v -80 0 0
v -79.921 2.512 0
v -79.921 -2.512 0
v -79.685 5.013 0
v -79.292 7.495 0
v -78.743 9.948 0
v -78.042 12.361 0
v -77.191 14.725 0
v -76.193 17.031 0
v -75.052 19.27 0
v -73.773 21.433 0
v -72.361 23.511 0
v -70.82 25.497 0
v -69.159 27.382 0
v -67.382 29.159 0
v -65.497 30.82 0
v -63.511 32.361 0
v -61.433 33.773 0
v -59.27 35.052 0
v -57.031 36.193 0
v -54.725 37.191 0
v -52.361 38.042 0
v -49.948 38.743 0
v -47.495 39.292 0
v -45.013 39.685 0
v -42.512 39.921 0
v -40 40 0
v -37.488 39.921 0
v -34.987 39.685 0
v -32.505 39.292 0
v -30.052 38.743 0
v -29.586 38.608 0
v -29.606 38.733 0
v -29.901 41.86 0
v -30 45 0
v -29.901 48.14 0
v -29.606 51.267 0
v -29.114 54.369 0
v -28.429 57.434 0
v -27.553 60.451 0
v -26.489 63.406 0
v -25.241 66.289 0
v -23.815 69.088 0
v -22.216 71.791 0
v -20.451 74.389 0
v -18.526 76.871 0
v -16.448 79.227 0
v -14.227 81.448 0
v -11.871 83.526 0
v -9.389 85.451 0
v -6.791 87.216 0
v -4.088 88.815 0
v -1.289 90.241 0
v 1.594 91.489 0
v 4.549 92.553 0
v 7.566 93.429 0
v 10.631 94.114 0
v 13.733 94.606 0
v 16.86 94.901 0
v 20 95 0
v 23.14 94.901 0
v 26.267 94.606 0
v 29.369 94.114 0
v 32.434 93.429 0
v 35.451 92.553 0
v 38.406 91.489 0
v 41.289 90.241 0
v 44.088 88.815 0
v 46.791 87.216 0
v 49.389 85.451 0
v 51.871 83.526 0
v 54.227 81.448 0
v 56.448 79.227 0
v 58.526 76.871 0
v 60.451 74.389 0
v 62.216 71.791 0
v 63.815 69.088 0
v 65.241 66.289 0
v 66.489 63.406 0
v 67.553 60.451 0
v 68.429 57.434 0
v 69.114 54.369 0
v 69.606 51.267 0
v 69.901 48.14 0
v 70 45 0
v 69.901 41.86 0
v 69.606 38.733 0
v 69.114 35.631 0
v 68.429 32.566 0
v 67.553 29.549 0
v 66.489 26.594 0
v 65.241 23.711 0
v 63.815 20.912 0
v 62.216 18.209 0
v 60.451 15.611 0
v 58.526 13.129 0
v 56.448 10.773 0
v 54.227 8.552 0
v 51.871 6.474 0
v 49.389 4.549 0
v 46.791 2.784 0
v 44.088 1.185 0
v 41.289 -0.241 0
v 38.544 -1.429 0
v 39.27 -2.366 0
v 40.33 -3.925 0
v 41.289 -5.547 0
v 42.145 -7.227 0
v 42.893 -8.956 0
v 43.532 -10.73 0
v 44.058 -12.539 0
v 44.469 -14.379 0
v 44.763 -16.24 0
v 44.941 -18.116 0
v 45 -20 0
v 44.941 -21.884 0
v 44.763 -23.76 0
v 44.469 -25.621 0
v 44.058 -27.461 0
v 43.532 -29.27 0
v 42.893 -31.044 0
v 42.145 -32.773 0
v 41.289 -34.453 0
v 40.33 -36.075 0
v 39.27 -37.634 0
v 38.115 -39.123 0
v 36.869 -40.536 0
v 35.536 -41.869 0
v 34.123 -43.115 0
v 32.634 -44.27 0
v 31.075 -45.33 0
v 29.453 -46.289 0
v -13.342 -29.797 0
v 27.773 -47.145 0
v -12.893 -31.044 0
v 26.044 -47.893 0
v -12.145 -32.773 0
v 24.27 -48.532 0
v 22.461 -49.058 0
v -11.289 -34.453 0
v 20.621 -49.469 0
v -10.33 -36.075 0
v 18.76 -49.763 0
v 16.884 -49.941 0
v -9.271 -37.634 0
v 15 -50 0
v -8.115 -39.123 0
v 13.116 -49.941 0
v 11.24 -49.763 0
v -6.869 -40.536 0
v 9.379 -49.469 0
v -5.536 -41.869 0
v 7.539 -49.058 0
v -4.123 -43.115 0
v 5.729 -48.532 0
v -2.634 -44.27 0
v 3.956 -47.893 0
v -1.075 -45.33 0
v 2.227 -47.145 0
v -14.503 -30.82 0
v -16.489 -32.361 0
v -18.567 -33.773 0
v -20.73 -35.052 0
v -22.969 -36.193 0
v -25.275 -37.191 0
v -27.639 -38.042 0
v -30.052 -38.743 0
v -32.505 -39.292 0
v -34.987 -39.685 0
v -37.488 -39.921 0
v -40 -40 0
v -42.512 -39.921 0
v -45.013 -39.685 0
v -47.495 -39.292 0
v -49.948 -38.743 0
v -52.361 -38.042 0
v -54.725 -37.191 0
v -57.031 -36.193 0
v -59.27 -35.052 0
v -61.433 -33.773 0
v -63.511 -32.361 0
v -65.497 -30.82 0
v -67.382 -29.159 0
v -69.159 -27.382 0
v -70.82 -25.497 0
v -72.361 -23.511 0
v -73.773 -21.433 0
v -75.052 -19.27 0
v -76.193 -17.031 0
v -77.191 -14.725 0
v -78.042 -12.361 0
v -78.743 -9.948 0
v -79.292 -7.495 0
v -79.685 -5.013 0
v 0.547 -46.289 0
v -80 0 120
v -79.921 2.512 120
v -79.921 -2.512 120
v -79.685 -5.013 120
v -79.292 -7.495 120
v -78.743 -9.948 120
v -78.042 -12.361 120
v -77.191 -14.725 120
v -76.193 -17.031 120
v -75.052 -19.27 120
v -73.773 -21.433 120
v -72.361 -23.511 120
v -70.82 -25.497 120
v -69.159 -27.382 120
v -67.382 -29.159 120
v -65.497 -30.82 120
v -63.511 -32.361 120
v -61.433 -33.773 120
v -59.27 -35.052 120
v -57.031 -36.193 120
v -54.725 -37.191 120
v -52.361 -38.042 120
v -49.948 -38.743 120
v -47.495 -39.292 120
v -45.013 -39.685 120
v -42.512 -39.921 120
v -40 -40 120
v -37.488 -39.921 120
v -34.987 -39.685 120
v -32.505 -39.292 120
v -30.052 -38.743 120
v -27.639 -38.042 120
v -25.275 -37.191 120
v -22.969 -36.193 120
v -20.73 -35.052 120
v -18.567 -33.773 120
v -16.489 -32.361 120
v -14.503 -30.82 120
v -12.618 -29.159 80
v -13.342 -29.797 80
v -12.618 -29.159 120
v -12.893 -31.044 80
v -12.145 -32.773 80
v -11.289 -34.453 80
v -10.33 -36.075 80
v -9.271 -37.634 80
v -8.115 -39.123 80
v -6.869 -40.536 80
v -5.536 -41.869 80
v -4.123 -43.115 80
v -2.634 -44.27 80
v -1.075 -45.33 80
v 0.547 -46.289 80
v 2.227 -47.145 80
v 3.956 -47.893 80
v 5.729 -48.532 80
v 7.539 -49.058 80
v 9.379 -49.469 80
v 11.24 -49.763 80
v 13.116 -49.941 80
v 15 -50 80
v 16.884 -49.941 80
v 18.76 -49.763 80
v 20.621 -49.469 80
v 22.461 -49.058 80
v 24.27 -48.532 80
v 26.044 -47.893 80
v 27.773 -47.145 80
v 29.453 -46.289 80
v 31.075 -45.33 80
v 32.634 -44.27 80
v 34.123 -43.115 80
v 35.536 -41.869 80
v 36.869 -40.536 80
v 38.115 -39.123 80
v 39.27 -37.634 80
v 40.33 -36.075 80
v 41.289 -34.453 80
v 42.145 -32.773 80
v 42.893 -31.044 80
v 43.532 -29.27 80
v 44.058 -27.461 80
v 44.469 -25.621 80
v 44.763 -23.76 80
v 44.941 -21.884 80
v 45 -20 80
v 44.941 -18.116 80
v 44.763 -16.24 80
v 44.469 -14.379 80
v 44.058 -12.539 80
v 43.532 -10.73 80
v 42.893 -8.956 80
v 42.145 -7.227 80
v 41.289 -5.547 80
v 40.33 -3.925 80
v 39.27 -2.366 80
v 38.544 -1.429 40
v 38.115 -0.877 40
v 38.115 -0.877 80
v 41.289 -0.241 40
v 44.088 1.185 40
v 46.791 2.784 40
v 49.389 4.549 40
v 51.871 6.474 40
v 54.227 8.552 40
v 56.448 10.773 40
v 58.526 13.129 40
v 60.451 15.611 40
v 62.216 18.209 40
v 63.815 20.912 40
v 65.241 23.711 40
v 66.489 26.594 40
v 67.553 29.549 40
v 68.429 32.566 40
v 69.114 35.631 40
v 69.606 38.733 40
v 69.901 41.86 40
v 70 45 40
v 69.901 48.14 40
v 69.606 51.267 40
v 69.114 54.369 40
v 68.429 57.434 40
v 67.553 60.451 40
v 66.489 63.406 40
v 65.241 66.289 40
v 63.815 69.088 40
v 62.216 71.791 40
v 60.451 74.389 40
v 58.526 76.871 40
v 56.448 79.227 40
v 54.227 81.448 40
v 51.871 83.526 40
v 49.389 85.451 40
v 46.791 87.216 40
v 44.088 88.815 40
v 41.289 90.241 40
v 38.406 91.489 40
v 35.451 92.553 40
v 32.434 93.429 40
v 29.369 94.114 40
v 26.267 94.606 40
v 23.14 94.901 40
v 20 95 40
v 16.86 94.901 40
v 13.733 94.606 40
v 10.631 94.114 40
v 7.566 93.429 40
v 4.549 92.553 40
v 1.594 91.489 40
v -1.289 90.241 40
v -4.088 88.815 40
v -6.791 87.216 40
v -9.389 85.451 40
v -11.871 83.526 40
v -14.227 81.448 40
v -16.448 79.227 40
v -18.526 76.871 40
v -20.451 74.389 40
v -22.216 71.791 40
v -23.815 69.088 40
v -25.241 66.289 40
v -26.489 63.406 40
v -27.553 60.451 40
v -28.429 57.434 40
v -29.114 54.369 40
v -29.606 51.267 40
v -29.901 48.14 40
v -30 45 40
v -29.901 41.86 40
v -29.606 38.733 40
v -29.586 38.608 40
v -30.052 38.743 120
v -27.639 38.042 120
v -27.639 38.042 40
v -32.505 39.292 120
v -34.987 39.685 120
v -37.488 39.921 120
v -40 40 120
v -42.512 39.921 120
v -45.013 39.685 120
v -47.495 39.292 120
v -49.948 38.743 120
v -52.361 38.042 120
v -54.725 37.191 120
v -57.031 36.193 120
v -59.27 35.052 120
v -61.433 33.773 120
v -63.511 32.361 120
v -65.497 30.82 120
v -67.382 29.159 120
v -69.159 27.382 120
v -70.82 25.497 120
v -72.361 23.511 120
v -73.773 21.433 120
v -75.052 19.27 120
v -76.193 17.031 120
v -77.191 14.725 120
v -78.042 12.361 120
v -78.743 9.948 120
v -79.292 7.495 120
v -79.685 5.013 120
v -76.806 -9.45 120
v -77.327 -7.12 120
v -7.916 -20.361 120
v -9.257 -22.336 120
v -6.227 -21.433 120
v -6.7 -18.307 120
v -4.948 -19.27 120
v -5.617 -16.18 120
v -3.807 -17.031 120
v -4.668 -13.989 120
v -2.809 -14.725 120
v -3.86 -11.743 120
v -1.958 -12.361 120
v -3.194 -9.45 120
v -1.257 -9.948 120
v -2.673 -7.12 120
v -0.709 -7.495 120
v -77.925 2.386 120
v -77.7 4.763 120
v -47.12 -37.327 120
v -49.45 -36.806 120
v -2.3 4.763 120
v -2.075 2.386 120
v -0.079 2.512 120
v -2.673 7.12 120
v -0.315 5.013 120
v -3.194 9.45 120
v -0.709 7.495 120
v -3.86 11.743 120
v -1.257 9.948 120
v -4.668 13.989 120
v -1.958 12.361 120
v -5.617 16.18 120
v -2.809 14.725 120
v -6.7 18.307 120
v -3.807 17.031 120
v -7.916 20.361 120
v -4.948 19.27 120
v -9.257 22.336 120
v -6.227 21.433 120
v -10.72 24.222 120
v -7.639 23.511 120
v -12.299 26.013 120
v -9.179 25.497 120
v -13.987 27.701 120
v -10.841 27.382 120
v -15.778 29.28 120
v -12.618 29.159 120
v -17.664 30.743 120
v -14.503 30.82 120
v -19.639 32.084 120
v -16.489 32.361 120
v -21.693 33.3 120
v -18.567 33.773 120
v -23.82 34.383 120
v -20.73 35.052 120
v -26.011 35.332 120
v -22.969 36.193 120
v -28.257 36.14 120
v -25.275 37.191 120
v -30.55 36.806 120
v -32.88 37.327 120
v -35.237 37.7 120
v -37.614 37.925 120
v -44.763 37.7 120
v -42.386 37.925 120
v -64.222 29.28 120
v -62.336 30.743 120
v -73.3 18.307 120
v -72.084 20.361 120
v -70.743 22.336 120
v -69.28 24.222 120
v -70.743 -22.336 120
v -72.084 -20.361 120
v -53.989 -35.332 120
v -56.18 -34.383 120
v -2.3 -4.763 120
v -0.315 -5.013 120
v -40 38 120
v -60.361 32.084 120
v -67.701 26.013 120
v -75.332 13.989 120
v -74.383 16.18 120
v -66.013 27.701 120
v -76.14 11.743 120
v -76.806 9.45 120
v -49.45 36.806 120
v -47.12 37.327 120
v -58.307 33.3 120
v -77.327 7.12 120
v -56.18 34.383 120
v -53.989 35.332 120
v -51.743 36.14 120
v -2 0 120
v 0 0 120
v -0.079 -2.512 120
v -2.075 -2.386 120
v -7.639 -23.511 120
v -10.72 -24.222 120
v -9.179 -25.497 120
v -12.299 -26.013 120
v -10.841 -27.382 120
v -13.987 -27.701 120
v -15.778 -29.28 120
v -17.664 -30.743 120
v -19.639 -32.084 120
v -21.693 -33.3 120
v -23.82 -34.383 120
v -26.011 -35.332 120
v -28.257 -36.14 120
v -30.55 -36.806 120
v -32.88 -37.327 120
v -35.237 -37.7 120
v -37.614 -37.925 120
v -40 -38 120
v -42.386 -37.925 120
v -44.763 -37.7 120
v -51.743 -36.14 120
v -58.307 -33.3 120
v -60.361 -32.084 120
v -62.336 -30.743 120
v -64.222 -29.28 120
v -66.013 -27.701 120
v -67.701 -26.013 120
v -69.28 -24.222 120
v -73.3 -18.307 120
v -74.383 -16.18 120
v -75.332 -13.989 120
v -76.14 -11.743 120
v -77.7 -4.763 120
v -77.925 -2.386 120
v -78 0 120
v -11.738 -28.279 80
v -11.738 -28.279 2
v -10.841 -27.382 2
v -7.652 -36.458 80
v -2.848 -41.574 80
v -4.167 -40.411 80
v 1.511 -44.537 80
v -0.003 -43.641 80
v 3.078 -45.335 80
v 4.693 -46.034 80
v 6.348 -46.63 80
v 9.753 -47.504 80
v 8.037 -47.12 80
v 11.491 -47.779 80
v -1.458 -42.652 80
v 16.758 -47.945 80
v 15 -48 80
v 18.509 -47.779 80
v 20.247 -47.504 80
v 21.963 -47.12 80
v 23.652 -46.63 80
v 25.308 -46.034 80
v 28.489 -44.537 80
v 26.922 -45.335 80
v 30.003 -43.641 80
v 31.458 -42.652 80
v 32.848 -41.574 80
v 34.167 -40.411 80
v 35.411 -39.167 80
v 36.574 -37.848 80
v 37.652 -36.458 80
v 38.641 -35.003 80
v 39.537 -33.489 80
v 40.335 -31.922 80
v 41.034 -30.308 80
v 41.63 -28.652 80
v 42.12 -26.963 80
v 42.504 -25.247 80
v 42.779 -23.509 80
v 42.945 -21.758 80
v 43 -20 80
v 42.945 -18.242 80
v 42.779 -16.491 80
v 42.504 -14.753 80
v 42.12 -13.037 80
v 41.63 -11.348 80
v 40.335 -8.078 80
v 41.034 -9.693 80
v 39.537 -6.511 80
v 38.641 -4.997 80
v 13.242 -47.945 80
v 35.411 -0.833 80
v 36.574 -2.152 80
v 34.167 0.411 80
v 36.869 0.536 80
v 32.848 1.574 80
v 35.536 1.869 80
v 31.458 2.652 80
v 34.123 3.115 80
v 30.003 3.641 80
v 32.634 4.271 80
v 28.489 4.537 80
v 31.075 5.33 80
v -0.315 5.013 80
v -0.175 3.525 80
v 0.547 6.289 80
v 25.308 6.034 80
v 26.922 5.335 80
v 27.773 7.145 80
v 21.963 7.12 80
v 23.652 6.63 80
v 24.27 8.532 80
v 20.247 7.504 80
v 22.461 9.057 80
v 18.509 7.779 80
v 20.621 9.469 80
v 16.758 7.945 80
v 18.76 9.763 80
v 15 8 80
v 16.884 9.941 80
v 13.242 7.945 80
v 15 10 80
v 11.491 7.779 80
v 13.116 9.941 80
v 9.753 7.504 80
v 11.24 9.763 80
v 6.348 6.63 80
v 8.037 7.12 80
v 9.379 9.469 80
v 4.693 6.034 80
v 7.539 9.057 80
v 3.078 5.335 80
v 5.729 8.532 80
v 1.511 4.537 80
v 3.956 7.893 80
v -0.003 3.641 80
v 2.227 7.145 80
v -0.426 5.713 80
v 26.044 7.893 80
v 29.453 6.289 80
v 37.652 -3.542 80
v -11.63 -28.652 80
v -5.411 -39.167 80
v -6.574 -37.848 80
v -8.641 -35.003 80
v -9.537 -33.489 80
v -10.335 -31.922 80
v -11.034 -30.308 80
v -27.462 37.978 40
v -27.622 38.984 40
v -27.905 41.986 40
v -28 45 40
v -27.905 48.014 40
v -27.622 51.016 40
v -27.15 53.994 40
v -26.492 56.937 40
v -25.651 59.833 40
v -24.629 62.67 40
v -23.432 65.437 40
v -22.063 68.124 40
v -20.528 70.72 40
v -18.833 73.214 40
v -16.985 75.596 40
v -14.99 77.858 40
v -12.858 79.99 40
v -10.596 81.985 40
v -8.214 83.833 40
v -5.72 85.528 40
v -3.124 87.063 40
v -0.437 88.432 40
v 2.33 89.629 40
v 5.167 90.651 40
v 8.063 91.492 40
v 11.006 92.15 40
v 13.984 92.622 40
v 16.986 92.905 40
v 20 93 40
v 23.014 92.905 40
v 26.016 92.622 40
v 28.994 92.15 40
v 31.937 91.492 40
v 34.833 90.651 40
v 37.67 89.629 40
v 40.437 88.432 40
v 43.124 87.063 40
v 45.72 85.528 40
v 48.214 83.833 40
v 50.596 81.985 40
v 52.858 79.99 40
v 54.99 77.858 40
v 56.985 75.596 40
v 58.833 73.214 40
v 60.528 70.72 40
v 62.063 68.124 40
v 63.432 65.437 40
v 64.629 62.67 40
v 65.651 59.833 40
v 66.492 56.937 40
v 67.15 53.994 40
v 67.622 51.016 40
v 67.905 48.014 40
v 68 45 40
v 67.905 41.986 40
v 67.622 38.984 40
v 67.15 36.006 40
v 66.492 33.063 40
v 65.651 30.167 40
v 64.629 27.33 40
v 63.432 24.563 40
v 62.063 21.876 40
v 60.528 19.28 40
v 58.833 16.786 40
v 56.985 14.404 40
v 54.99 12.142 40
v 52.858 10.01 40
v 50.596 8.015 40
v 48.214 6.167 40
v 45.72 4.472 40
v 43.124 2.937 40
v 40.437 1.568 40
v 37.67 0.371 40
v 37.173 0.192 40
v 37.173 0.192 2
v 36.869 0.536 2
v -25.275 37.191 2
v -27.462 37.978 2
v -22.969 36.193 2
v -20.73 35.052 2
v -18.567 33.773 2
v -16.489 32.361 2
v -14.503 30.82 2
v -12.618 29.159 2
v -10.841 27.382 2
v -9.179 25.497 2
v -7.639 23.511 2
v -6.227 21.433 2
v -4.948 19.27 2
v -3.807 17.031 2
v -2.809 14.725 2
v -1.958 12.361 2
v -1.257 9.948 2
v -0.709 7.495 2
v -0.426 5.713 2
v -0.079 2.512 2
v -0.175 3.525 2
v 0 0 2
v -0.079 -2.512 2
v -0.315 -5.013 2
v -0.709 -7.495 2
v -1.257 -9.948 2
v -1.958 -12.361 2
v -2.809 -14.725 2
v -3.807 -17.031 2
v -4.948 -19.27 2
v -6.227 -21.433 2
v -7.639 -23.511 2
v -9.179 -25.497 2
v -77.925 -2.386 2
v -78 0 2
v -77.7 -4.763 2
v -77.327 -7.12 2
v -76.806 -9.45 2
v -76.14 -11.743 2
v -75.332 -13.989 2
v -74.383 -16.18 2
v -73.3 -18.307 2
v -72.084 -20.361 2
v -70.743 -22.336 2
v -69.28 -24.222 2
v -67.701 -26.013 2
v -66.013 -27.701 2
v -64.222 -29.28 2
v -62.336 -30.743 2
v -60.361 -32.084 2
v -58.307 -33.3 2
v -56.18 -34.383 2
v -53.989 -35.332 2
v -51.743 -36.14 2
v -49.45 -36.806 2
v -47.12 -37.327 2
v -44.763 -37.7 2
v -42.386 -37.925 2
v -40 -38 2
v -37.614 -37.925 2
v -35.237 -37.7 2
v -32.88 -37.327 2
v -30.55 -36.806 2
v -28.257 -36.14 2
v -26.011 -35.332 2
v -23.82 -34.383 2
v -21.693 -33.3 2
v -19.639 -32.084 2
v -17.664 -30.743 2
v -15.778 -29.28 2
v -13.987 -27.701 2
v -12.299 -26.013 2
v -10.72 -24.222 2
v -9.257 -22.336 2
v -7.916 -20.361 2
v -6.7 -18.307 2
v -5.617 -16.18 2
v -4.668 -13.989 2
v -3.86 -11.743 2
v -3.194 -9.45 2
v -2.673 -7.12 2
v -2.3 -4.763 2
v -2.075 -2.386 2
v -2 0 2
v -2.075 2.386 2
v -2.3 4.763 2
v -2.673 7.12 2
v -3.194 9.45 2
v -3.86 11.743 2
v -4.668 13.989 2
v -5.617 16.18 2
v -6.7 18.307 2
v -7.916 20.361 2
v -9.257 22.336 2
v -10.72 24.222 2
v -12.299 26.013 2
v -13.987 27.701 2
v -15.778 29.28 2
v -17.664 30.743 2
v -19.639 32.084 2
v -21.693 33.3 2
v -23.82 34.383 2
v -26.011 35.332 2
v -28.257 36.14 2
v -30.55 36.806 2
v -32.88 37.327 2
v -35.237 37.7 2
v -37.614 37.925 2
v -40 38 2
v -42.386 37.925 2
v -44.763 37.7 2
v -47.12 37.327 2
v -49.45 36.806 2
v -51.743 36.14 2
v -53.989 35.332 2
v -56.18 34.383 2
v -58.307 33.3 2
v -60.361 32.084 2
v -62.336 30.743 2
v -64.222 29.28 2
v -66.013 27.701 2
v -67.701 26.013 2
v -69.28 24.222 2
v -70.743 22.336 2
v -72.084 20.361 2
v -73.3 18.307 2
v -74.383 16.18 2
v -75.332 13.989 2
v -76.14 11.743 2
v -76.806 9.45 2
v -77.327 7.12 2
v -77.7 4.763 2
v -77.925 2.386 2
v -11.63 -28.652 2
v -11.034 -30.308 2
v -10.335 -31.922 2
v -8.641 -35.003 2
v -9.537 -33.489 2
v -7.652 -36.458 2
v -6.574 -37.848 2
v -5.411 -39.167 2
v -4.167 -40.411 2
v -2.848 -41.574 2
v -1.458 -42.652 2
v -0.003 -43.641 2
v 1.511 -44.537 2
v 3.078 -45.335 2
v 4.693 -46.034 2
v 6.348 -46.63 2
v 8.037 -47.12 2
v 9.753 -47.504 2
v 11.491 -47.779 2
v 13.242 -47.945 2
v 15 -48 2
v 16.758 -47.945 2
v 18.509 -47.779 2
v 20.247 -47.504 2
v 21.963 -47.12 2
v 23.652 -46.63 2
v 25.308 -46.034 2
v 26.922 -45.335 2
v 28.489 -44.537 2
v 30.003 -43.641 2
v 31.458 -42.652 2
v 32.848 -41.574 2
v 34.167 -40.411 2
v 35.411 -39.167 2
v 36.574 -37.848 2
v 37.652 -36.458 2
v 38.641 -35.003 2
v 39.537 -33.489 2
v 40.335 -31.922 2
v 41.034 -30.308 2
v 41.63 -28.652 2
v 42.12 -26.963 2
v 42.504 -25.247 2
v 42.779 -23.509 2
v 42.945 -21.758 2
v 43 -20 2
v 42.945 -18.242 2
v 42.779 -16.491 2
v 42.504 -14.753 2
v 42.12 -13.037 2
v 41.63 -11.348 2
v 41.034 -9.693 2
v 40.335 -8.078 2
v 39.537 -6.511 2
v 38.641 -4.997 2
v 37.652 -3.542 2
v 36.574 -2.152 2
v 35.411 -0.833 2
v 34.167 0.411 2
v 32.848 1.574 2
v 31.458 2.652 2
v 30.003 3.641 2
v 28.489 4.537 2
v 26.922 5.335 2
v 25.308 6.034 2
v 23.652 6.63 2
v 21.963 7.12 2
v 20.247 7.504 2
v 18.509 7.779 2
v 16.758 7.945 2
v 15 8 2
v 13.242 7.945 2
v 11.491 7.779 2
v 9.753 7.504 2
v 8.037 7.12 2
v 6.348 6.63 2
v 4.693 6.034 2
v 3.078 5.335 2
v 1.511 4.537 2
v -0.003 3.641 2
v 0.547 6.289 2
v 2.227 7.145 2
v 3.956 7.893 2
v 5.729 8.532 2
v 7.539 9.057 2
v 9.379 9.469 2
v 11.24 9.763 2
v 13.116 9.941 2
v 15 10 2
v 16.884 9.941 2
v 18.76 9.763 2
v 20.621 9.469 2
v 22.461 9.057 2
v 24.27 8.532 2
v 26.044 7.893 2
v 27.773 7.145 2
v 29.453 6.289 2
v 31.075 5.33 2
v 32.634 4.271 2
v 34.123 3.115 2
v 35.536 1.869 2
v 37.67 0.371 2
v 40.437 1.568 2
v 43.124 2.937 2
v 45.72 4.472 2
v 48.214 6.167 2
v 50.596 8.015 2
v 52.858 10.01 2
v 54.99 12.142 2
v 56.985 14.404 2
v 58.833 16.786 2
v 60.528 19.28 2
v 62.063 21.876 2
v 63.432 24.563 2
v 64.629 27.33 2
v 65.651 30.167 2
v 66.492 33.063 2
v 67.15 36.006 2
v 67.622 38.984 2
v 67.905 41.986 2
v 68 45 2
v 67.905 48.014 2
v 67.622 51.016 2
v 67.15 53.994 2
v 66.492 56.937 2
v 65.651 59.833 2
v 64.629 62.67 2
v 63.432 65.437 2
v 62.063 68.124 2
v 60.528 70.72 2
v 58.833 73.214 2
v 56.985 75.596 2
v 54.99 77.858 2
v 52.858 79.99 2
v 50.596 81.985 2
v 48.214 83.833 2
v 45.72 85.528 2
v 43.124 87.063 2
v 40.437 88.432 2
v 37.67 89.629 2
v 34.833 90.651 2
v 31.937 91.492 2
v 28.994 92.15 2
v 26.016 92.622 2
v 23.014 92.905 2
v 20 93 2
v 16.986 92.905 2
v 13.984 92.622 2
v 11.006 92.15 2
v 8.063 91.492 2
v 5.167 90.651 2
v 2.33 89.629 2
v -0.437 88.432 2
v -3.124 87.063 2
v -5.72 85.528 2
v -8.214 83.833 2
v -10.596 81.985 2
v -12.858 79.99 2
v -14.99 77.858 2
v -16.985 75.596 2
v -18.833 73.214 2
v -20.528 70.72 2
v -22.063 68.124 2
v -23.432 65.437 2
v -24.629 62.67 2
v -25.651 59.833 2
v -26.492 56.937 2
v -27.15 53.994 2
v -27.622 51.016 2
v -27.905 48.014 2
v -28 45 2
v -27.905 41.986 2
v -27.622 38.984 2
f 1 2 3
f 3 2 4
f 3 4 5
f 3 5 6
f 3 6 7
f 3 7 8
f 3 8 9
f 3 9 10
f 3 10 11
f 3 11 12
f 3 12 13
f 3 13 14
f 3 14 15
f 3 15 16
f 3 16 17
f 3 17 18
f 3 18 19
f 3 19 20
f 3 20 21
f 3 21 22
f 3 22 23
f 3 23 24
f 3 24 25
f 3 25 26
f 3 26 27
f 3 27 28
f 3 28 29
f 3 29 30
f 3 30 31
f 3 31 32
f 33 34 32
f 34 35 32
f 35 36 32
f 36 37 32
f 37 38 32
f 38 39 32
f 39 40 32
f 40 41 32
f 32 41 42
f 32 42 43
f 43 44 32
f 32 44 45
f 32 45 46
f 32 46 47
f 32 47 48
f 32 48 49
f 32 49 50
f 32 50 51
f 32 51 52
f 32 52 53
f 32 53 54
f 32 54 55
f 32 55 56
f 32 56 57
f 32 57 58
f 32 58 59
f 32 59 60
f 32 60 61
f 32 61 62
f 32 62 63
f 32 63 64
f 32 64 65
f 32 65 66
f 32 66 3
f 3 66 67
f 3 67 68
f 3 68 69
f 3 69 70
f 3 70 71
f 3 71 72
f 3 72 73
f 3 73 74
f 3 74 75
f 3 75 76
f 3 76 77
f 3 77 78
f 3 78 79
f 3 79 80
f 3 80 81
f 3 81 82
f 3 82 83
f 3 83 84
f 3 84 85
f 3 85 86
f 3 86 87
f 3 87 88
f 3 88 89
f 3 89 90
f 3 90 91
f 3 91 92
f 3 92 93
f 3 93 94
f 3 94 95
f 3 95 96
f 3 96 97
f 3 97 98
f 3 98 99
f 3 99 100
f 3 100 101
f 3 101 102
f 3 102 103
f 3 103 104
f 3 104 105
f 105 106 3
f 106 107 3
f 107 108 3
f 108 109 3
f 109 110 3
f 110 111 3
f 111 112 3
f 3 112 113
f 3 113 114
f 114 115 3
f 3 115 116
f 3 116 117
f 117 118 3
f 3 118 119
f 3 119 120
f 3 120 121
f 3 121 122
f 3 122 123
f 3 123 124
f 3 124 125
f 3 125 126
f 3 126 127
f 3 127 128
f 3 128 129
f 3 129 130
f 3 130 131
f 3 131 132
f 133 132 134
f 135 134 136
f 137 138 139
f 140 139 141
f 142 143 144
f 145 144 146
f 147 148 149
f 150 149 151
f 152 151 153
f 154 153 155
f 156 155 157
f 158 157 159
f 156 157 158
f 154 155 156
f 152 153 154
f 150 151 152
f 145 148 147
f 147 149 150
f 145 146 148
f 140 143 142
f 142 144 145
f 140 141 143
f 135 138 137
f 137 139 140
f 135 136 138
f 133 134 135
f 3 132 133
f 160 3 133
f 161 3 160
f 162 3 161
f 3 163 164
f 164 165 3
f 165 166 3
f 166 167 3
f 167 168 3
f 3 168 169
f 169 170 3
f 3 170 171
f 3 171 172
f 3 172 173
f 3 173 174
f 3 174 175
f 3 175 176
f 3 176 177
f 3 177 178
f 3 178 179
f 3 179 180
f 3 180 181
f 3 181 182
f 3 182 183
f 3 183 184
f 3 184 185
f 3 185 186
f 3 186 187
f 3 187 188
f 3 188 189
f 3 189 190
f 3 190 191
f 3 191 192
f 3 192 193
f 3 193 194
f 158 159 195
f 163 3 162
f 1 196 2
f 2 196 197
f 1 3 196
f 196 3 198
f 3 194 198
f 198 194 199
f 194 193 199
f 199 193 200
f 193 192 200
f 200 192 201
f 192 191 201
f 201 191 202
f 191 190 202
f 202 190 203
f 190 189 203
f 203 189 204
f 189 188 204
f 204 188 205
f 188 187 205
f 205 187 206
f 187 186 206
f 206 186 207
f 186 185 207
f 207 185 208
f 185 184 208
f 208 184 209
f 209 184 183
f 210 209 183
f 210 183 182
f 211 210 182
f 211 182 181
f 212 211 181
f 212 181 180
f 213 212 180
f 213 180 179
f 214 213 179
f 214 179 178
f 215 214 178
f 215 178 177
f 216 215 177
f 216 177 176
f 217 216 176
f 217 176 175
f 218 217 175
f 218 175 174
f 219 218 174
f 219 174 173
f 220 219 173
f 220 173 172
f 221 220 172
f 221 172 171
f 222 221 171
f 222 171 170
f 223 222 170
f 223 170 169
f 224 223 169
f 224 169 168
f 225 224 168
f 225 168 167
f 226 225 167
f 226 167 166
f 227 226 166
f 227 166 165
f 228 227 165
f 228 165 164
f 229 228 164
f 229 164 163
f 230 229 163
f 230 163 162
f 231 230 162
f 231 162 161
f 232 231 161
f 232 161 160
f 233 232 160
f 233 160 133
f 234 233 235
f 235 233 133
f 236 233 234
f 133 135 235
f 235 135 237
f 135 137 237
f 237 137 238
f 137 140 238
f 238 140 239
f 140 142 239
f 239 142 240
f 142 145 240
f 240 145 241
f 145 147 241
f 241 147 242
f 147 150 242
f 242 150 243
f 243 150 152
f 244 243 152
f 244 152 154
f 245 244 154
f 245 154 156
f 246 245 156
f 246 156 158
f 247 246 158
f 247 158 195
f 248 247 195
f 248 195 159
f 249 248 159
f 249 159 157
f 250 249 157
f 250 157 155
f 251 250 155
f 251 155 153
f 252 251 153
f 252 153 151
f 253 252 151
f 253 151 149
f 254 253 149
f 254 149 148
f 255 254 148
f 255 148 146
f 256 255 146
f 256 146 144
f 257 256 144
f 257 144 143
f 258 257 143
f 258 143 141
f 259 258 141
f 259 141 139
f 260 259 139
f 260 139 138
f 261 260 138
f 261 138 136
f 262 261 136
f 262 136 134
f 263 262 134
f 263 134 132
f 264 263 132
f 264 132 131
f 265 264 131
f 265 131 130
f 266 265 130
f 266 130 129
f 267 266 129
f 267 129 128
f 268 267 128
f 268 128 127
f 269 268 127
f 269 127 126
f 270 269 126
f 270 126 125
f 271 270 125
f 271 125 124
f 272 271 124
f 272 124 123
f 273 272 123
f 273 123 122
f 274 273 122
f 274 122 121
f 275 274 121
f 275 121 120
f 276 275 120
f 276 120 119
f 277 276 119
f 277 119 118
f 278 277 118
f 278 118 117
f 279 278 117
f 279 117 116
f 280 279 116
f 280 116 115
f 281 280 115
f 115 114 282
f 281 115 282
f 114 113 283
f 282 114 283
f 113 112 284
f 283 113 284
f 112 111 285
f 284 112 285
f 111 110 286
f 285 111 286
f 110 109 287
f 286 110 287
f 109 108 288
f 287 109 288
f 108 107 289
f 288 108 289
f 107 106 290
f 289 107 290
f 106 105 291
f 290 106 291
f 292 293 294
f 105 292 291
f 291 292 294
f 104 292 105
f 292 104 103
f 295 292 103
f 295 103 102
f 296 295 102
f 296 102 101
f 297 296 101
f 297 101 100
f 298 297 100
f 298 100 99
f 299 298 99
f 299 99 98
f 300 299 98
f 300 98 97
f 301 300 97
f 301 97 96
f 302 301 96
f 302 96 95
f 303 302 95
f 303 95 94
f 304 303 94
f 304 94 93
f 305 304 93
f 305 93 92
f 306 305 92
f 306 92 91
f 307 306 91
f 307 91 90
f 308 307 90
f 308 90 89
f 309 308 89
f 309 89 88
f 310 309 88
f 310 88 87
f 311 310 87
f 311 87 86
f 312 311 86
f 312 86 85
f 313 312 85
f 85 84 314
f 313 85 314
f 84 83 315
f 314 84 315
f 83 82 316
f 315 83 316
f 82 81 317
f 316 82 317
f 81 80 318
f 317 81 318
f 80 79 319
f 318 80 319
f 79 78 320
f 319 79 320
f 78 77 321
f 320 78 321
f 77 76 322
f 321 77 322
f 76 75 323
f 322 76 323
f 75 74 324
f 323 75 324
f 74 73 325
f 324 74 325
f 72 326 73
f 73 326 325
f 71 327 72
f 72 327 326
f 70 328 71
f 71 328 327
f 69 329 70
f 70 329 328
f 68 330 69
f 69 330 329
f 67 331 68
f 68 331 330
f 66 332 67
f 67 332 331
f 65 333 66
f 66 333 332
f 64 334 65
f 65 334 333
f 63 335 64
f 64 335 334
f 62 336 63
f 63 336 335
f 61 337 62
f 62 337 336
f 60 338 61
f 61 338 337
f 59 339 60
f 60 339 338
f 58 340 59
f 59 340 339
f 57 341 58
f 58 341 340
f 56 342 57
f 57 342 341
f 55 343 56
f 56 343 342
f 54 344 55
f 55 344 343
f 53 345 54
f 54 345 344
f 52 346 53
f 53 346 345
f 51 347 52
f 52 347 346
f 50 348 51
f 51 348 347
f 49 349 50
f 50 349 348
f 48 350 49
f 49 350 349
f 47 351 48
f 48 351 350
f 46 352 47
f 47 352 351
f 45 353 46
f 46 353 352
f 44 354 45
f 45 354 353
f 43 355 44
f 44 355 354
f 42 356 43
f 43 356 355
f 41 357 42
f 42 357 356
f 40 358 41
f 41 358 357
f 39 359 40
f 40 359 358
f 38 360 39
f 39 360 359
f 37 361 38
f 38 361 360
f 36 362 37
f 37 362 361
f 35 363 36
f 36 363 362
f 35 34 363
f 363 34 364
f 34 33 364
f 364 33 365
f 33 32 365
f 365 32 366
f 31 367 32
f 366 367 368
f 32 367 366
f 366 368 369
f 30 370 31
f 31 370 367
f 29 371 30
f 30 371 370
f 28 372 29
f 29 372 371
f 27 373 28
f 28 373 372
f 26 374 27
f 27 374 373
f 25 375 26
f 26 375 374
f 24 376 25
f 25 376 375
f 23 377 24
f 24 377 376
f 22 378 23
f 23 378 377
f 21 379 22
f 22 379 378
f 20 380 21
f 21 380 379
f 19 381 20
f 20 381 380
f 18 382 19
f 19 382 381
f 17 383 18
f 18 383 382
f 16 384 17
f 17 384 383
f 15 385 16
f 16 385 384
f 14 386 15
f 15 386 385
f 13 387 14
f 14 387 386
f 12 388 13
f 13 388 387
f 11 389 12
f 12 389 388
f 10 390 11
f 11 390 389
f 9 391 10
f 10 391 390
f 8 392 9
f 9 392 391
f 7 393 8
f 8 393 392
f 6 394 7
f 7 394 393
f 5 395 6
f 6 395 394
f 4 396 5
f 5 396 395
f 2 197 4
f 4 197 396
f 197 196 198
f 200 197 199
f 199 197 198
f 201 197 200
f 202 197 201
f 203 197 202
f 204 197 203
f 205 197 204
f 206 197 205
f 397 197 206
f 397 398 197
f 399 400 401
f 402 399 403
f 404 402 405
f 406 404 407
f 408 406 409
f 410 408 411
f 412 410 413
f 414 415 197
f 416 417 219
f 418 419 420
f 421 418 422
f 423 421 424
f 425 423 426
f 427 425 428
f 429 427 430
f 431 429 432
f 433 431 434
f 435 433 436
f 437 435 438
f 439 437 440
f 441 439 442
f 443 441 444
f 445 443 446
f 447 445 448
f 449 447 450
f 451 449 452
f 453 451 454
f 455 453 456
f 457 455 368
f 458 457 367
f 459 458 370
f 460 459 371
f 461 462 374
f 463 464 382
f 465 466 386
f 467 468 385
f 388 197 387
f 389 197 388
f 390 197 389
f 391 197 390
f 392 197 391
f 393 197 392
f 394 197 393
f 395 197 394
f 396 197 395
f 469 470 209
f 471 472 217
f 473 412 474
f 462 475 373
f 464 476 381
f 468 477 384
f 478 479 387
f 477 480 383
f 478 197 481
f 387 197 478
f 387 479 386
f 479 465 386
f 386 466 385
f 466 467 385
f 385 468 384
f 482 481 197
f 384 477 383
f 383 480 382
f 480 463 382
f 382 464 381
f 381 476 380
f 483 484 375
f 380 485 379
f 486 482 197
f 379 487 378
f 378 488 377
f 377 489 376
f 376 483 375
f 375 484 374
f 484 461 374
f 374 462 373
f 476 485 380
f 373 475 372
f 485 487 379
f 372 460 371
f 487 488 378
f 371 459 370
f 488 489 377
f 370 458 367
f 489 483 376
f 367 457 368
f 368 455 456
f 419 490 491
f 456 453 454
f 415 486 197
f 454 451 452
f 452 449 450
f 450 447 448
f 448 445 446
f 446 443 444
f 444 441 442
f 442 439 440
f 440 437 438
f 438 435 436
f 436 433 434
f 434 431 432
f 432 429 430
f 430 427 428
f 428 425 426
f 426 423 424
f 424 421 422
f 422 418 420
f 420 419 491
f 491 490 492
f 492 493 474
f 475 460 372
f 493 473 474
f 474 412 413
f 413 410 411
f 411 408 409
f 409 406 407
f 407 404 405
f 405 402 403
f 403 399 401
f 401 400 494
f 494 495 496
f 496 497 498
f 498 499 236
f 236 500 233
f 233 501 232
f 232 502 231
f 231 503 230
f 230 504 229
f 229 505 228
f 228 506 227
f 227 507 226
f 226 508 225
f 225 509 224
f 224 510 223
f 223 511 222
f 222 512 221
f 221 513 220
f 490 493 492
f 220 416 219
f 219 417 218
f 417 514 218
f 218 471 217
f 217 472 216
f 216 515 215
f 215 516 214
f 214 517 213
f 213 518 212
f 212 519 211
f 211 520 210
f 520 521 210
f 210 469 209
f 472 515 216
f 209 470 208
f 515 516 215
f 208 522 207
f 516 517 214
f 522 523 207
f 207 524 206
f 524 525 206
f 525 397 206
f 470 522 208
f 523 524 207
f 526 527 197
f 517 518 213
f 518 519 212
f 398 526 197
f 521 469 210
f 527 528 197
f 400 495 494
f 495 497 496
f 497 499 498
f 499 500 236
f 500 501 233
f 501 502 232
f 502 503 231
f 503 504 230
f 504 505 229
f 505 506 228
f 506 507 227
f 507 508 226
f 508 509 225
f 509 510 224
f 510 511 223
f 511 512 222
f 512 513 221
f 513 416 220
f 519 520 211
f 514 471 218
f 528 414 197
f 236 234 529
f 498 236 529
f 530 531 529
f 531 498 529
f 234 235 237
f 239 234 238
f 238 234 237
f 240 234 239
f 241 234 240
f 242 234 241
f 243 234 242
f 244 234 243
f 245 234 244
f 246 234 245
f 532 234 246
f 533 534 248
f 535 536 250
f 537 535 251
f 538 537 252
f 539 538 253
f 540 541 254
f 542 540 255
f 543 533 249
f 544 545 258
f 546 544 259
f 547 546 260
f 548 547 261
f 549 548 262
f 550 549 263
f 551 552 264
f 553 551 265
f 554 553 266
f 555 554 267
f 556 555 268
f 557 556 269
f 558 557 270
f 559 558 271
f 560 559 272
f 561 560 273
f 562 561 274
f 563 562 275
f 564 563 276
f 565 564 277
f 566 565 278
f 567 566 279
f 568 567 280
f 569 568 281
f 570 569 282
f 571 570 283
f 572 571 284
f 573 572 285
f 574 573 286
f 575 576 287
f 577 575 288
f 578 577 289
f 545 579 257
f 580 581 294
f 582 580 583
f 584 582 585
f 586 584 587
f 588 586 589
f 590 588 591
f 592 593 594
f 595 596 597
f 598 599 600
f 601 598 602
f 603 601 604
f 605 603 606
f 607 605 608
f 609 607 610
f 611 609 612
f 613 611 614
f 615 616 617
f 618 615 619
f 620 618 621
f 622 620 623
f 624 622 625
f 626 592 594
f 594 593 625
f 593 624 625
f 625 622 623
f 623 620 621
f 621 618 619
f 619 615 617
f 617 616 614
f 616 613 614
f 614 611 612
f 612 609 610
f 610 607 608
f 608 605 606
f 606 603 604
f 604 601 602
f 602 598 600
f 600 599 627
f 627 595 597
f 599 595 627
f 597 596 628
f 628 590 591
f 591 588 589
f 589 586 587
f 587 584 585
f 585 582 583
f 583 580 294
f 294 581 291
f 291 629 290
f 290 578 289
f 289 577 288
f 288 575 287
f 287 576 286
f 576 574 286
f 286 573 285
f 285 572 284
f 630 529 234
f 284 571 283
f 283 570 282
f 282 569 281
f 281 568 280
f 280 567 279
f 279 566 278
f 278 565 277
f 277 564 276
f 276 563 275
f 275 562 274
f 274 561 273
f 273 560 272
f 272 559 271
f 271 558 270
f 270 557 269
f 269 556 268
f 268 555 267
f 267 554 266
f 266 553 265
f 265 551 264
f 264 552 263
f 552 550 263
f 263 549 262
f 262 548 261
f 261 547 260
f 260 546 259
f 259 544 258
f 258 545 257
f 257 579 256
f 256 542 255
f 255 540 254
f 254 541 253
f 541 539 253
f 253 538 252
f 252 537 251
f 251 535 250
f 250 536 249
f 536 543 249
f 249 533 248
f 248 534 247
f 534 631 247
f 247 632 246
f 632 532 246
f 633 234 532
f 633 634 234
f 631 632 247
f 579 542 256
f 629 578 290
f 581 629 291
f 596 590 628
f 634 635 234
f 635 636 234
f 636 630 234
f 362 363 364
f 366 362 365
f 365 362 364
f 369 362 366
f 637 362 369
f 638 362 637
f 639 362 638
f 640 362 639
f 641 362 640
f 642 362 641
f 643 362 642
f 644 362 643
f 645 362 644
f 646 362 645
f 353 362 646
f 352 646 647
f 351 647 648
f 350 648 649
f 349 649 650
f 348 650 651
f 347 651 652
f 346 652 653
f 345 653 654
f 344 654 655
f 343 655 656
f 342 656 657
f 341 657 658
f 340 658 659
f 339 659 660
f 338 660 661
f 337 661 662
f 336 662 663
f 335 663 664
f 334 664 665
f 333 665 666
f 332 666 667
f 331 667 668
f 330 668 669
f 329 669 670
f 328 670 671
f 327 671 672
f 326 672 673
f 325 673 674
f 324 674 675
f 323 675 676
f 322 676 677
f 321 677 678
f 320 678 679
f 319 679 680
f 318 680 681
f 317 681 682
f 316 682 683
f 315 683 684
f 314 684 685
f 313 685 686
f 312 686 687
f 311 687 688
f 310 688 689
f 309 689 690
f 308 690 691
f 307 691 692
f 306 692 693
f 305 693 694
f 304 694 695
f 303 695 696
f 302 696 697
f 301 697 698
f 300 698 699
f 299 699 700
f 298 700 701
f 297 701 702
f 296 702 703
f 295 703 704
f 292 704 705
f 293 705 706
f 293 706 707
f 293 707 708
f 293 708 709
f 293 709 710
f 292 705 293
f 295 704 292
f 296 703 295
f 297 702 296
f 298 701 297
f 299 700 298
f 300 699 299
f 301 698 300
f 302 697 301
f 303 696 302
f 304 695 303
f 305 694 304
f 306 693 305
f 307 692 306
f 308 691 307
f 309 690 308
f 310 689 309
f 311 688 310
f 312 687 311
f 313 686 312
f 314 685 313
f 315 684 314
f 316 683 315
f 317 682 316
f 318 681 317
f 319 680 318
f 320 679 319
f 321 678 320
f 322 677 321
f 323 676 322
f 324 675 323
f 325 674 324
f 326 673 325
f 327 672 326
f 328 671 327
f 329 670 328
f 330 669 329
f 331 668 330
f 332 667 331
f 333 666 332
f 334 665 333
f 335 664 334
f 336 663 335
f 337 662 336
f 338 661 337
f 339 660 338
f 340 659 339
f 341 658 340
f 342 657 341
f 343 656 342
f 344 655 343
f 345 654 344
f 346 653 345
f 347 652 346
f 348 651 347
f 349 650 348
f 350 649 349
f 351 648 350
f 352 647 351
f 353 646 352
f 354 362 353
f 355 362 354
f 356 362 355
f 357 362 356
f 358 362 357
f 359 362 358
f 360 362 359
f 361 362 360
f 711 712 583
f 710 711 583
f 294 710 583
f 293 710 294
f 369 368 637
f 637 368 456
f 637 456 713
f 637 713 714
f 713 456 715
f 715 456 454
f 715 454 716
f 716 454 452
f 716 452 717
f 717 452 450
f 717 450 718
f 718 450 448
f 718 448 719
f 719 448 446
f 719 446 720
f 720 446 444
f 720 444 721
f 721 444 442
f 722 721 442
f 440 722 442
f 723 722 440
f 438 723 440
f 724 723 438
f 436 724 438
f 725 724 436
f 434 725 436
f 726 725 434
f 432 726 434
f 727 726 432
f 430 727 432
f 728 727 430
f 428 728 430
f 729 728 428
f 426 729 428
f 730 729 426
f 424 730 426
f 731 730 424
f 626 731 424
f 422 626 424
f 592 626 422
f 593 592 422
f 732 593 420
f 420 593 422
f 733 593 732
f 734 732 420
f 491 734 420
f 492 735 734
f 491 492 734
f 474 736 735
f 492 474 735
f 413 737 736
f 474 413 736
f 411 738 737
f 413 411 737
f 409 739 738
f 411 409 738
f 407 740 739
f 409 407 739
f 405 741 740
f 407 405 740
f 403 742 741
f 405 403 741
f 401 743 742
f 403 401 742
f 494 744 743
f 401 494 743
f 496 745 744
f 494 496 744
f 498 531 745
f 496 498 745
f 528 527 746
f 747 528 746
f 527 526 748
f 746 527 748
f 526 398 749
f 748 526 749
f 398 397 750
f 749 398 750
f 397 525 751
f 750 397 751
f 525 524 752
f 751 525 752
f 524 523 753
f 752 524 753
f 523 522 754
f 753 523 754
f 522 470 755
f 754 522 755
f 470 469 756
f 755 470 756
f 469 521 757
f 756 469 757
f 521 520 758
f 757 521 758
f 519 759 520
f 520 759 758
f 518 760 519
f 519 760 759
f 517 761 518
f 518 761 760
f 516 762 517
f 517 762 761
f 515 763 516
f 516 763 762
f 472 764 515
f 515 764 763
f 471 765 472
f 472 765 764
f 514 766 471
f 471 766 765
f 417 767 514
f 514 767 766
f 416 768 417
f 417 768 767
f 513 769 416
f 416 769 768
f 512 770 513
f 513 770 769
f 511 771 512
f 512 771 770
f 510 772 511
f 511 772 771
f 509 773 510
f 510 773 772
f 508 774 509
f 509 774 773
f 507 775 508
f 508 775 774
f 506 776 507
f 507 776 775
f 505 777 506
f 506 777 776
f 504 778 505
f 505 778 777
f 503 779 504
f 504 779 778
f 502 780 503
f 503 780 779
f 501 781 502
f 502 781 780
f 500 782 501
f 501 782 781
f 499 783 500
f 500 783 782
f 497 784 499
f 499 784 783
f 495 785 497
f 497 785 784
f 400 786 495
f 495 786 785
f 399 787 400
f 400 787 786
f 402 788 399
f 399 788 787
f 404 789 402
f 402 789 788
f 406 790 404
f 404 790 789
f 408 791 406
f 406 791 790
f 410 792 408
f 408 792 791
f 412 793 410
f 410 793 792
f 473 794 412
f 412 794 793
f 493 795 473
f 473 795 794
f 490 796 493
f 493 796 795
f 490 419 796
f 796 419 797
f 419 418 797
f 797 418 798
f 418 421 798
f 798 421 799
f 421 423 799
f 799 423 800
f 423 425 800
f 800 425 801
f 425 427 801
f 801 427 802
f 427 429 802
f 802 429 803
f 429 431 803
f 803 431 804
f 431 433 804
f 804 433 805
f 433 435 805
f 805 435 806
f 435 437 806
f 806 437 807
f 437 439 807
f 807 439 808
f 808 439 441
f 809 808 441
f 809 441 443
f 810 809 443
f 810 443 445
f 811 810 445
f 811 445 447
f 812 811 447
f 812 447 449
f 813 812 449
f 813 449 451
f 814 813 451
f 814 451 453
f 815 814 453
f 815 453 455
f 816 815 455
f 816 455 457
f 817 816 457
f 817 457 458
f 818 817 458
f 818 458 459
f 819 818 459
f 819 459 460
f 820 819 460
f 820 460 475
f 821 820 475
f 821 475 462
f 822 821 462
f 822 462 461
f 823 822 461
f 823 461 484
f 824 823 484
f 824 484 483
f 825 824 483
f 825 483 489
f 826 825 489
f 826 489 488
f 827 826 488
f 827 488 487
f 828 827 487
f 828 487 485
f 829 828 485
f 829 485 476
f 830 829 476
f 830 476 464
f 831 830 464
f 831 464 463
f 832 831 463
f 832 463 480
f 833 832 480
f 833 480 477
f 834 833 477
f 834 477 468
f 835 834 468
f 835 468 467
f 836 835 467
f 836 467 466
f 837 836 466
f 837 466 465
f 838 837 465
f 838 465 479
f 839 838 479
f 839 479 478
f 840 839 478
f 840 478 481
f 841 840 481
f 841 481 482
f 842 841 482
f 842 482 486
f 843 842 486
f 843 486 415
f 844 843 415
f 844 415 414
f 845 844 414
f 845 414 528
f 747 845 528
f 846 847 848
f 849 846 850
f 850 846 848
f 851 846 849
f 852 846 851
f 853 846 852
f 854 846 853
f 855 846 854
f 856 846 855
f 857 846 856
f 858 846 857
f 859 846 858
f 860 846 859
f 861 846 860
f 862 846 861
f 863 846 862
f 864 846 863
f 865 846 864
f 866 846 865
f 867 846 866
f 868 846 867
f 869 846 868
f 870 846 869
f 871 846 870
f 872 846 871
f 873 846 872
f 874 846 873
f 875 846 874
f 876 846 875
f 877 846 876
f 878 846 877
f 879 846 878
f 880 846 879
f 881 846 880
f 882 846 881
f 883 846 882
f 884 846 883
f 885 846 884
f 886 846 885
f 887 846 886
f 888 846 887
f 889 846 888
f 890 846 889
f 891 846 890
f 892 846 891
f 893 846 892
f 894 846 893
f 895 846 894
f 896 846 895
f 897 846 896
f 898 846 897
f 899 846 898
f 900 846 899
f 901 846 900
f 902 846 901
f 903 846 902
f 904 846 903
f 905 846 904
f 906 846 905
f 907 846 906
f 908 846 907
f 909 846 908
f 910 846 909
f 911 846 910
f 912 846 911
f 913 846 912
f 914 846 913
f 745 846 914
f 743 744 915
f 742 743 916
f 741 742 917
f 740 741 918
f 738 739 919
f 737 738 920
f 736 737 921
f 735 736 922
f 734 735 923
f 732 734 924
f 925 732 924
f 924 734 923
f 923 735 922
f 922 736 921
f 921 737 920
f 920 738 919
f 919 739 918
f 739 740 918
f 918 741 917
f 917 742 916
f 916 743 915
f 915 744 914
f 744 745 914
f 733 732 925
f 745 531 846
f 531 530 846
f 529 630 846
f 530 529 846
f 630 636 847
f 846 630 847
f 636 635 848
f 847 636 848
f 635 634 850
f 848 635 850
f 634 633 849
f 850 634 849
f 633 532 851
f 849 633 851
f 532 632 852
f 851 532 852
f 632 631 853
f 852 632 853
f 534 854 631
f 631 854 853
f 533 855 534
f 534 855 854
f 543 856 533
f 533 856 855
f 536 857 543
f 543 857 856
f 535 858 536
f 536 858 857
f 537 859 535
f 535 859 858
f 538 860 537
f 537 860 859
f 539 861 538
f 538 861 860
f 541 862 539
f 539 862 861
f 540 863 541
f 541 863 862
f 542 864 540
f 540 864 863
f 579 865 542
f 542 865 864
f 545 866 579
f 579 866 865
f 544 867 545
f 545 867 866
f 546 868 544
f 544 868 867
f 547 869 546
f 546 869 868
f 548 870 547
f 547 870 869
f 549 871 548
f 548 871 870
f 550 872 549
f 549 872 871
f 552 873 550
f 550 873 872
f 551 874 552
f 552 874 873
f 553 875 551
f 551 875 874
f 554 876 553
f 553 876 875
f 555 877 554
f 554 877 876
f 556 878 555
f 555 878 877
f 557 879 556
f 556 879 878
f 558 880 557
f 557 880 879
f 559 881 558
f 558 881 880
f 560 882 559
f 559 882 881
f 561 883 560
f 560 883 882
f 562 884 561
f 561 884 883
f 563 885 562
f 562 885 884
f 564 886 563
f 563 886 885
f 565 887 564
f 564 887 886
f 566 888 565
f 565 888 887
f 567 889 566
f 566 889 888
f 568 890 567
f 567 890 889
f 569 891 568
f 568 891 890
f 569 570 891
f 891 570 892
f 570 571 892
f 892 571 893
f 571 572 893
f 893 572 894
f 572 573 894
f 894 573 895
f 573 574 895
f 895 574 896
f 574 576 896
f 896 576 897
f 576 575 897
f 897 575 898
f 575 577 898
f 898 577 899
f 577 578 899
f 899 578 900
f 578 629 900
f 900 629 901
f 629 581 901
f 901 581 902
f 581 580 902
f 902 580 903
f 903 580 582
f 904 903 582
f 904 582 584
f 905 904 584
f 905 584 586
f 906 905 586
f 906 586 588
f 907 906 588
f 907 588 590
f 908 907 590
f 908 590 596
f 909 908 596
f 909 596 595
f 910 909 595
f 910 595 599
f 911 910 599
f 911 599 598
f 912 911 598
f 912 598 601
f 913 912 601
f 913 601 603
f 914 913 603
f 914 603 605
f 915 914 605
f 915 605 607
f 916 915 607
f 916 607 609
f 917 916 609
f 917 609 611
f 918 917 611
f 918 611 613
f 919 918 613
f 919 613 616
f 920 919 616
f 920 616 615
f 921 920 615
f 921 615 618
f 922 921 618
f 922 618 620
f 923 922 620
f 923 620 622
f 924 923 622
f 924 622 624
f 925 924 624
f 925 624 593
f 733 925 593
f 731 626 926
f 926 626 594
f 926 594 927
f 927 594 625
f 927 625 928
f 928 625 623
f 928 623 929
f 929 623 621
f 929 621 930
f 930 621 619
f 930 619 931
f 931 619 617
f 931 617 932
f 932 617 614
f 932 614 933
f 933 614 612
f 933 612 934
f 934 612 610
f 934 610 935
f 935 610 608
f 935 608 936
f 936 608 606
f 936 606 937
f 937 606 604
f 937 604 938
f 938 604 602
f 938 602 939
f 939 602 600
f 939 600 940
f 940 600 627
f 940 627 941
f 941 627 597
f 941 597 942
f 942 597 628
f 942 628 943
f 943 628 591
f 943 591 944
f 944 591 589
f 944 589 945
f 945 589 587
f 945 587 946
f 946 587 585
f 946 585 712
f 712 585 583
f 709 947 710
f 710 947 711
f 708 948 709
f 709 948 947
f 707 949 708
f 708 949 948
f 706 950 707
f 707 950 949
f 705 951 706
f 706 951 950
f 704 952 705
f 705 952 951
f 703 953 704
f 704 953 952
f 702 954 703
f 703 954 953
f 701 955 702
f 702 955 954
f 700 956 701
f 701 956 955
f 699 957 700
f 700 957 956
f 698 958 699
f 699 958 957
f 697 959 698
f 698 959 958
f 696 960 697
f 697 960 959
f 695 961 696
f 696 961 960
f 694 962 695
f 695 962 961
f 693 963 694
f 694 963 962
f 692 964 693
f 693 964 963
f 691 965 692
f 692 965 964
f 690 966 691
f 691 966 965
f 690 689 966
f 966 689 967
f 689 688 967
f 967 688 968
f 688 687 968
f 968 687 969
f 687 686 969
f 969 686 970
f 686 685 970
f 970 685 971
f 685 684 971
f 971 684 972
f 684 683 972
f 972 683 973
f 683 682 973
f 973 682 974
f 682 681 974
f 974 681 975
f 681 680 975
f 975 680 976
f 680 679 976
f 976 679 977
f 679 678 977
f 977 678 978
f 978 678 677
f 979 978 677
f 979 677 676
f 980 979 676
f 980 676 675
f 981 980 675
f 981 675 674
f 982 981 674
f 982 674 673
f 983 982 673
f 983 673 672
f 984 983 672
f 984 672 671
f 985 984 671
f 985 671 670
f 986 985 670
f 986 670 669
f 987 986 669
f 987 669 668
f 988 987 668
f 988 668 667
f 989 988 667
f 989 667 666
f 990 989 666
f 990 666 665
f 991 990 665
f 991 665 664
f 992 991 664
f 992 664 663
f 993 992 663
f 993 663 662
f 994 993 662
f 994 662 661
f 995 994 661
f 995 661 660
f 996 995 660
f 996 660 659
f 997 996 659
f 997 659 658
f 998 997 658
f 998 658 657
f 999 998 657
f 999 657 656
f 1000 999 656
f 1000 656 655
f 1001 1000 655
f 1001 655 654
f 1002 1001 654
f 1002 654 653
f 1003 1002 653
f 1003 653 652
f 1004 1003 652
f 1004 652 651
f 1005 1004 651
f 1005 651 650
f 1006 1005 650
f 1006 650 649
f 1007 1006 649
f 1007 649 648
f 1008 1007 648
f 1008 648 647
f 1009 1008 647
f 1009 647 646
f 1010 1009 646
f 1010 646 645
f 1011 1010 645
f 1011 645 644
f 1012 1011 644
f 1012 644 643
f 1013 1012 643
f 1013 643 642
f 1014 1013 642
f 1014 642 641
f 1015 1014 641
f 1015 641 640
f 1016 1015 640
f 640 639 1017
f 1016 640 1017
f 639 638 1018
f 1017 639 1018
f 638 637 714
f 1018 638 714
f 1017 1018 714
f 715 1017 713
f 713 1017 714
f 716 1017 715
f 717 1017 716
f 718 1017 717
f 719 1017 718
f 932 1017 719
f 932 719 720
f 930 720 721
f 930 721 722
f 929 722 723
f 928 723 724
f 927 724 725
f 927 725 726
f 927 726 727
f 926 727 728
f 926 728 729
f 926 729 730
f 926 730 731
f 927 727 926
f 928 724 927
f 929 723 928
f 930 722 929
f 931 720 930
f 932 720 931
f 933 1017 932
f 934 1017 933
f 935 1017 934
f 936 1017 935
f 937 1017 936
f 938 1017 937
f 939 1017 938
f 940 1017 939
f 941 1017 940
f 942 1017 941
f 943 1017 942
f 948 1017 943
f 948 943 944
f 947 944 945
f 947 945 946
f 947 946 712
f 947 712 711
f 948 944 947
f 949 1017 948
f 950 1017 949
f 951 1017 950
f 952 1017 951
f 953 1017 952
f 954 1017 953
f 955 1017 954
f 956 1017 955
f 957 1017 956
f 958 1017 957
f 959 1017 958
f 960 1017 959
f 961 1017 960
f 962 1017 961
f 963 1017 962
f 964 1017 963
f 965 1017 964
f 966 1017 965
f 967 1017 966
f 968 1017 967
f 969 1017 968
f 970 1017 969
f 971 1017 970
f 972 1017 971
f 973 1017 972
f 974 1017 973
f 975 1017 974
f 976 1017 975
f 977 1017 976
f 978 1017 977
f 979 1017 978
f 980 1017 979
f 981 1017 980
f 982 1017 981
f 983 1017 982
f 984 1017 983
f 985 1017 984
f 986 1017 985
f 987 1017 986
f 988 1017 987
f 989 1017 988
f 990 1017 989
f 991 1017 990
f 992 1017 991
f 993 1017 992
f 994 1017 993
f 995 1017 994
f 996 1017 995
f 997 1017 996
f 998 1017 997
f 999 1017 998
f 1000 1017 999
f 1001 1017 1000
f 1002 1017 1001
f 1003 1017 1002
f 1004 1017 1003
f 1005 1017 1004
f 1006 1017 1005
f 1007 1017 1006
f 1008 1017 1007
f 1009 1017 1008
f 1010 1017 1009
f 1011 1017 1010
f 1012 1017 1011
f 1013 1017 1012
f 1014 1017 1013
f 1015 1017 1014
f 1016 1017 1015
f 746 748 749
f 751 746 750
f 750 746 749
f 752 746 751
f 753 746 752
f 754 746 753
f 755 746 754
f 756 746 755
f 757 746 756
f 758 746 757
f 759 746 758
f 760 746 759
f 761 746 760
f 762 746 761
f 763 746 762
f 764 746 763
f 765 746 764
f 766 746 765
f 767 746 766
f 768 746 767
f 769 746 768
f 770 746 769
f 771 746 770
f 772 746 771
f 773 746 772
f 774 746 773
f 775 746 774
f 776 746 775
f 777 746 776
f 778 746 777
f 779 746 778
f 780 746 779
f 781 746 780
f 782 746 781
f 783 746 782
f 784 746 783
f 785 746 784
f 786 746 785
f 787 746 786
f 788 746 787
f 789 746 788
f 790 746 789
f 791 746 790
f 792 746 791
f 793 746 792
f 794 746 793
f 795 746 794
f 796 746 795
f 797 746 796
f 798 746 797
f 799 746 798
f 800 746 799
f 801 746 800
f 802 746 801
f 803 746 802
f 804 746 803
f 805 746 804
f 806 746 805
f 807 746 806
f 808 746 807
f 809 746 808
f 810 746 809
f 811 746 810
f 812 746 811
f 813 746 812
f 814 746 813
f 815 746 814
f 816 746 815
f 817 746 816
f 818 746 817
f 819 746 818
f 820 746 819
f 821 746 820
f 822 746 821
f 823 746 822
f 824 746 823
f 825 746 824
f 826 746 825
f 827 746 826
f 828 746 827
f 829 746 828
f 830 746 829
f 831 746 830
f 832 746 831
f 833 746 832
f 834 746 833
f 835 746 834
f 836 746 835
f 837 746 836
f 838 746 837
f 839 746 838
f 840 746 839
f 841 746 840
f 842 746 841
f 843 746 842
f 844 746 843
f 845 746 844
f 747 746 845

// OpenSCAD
$fn = 100;

wall = 2;

difference() {
	union() {
		difference() {
			union() {
				translate([20, 45, 0]) {
					difference() {
						cylinder(r = 50, h = 40);
						translate([0, 0, wall]) cylinder(r = 50 - wall, h = 200);
					}
				}
				translate([15, -20, 0]) cylinder(r = 30, h = 80);
			}
			translate([15, -20, wall]) cylinder(r = 30 - wall, h = 200);
		}
		translate([-40, 0, 0]) cylinder(r = 40, h = 120);
	}
	translate([-40, 0, wall]) cylinder(r = 40 - wall, h = 200);
}
